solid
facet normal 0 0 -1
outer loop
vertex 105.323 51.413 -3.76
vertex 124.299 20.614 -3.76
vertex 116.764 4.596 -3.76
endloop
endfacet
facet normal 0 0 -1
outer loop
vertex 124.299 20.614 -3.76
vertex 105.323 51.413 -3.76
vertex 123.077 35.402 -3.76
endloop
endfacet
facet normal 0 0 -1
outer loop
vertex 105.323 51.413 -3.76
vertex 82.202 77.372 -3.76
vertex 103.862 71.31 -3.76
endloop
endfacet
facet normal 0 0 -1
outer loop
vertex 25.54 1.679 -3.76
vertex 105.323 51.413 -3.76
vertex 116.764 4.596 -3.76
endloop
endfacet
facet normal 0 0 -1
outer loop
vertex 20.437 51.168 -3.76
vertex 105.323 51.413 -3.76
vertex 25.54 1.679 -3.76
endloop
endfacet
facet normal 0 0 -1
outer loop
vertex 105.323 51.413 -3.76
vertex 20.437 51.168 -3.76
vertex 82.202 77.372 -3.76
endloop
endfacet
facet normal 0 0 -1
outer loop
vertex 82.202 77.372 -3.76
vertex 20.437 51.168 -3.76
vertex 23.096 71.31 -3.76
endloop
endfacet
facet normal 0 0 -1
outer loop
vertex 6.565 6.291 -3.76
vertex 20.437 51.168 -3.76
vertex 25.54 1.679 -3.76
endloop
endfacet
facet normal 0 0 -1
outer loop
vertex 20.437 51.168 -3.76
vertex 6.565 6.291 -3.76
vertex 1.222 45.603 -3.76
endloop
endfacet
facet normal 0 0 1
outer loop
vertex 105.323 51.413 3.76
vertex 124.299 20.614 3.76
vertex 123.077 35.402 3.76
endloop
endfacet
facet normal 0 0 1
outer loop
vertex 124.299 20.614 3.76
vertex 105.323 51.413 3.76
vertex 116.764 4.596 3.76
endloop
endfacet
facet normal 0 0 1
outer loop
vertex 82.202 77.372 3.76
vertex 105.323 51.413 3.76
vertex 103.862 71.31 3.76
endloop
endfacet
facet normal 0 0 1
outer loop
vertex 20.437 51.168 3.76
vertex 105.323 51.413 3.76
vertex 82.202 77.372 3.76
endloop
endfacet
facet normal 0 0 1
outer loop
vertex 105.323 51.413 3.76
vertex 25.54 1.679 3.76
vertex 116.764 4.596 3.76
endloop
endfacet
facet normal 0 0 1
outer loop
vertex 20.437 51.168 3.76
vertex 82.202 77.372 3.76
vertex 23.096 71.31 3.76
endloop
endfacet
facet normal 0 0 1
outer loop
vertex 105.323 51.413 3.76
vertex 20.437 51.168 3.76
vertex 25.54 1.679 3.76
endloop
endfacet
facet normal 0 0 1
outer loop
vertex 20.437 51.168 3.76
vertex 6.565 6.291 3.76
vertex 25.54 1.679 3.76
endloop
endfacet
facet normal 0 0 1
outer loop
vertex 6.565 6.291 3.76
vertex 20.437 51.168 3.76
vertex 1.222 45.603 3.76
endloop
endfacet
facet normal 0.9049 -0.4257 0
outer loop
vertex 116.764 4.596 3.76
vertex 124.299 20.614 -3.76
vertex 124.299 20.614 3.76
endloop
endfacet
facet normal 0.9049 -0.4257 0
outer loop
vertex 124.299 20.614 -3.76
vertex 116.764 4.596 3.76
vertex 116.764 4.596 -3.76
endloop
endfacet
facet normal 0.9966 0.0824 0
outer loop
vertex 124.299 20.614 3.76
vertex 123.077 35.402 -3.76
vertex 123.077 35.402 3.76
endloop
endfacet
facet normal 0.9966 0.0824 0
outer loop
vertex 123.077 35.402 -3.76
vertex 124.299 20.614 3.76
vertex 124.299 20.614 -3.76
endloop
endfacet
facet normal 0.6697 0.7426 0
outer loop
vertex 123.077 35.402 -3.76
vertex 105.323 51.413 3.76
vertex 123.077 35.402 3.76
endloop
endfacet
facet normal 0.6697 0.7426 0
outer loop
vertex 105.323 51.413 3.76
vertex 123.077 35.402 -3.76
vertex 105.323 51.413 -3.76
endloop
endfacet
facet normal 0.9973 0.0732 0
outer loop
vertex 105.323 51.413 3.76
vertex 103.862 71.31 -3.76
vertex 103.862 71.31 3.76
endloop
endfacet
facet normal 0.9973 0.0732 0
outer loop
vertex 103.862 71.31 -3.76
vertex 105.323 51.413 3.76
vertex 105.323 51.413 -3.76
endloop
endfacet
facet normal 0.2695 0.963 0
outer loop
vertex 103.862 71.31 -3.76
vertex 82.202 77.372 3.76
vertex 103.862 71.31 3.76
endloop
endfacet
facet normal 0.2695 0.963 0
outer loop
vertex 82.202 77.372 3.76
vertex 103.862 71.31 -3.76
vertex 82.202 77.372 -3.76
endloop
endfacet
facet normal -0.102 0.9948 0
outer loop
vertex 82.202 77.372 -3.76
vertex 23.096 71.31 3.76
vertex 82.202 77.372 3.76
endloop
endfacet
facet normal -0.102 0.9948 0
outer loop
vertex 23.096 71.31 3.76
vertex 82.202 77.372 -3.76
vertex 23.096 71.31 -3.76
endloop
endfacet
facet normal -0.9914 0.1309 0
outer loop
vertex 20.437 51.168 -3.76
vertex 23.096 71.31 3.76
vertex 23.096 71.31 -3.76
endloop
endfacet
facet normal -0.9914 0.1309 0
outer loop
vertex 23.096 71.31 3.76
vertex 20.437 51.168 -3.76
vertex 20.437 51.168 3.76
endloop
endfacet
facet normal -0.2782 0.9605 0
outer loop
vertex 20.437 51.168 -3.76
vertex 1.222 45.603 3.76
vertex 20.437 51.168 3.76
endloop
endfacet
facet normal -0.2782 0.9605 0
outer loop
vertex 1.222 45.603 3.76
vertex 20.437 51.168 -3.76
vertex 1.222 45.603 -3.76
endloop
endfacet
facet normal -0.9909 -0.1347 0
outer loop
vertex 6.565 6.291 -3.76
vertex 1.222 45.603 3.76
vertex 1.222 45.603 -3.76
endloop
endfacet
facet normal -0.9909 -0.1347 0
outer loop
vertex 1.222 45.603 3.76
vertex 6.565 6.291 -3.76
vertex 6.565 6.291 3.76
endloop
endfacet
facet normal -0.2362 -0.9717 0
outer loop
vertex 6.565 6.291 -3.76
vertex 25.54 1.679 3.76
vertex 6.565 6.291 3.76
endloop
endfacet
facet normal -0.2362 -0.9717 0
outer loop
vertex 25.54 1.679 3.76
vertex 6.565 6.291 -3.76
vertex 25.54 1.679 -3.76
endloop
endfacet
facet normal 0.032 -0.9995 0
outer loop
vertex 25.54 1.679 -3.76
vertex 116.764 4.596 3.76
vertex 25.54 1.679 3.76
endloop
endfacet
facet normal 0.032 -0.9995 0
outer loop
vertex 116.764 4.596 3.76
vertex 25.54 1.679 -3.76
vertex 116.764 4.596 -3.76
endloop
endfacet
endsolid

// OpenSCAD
/* doodle-meta {"version":1,"parameters":{"width":{"label":"Overall width","description":"Changes the body width","unit":"mm","feature":"body_width"},"height":{"label":"Overall height","description":"Changes the body height","unit":"mm","feature":"body_height"},"thickness":{"label":"Plate thickness","description":"Changes the plate depth","unit":"mm","feature":"body_thickness"},"headlight_diameter":{"label":"Headlight diameter","description":"Changes the headlight opening size","unit":"mm","feature":"headlights"},"slot_width":{"label":"Slot width","description":"Changes the vertical slot width","unit":"mm","feature":"slots"},"slot_height":{"label":"Slot height","description":"Changes the vertical slot height","unit":"mm","feature":"slots"}},"features":{"body_width":{"kind":"dimension","axis":"x","label":"Overall width"},"body_height":{"kind":"dimension","axis":"z","label":"Overall height"},"body_thickness":{"kind":"dimension","axis":"y","label":"Plate thickness"},"headlights":{"kind":"region","label":"Headlights","min":[{"parameter":"width","scale":0.09},{"parameter":"thickness","scale":-0.1},{"parameter":"height","scale":0.49}],"max":[{"parameter":"width","scale":0.26},{"parameter":"thickness","scale":1.1},{"parameter":"height","scale":0.75}]},"slots":{"kind":"region","label":"Vertical Slots","min":[{"parameter":"width","scale":0.29},{"parameter":"thickness","scale":-0.1},{"parameter":"height","scale":0.13}],"max":[{"parameter":"width","scale":0.71},{"parameter":"thickness","scale":1.1},{"parameter":"height","scale":0.74}]}}} */

// Top-level parameters (user-editable allowlist)
width = 126.0;
height = 78.83;
thickness = 7.52;
headlight_diameter = 21.0;
slot_width = 5.1;
slot_height = 48.0;

// Derived constants (not editable)
eps = 0.1;
headlight_y = 0.6263 * height; // Z center
headlight_x_offset = 0.3253 * width; // Distance from center
slot_y_center = 0.437 * height; // Z center
slot_x_start = 0.3098 * width; // First slot center X
slot_pitch = 0.0632 * width; // Pitch between slots
num_slots = 7;

// Main design
difference() {
    // Positive body: extruded polygon in XZ plane, thickness along Y
    translate([0, 0, 0])
        linear_extrude(height=thickness, center=true)
            polygon(points=outer_profile_points(), paths=outer_profile_path());

    // Subtract headlight cutouts (through along Y)
    translate([width/2 - headlight_x_offset, 0, headlight_y])
        rotate([90, 0, 0])
            cylinder(d=headlight_diameter, h=thickness + 2*eps, center=true);
            
    translate([width/2 + headlight_x_offset, 0, headlight_y])
        rotate([90, 0, 0])
            cylinder(d=headlight_diameter, h=thickness + 2*eps, center=true);

    // Subtract vertical slots (through along Y)
    for (i = [0 : num_slots - 1]) {
        translate([slot_x_start + i * slot_pitch, 0, slot_y_center])
            cube([slot_width, thickness + 2*eps, slot_height], center=true);
    }
}

// Helper module for outer profile polygon
function outer_profile_points() = [
    [0.0097 * width, 0.5785 * height],
    [0.0521 * width, 0.0798 * height],
    [0.2027 * width, 0.0213 * height],
    [0.9267 * width, 0.0583 * height],
    [0.9865 * width, 0.2615 * height],
    [0.9768 * width, 0.4491 * height],
    [0.8359 * width, 0.6522 * height],
    [0.8243 * width, 0.9046 * height],
    [0.6524 * width, 0.9815 * height],
    [0.1833 * width, 0.9046 * height],
    [0.1622 * width, 0.6491 * height]
];

function outer_profile_path() = [
    [0, 1, 2, 3, 4, 5, 6, 7, 8, 9, 10]
];
